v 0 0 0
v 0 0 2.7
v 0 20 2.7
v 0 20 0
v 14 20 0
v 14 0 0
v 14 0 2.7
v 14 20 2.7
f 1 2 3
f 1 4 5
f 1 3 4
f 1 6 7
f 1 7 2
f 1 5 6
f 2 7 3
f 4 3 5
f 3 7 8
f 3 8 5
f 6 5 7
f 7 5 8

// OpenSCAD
/* Warning, this is a very basic generator with a lot of approximation 
input data : [MQFP, EGX, 14x20x2.7mm, 100, , A, C04-00050A]
generated by com.zoubworld.electronics.cad.model3d.Basic
Date : Sun Feb 15 10:50:48 CET 2026
*/

//body
color("black")
translate([0,0,0])
cube([14.0,20.0,2.7], center=false);
